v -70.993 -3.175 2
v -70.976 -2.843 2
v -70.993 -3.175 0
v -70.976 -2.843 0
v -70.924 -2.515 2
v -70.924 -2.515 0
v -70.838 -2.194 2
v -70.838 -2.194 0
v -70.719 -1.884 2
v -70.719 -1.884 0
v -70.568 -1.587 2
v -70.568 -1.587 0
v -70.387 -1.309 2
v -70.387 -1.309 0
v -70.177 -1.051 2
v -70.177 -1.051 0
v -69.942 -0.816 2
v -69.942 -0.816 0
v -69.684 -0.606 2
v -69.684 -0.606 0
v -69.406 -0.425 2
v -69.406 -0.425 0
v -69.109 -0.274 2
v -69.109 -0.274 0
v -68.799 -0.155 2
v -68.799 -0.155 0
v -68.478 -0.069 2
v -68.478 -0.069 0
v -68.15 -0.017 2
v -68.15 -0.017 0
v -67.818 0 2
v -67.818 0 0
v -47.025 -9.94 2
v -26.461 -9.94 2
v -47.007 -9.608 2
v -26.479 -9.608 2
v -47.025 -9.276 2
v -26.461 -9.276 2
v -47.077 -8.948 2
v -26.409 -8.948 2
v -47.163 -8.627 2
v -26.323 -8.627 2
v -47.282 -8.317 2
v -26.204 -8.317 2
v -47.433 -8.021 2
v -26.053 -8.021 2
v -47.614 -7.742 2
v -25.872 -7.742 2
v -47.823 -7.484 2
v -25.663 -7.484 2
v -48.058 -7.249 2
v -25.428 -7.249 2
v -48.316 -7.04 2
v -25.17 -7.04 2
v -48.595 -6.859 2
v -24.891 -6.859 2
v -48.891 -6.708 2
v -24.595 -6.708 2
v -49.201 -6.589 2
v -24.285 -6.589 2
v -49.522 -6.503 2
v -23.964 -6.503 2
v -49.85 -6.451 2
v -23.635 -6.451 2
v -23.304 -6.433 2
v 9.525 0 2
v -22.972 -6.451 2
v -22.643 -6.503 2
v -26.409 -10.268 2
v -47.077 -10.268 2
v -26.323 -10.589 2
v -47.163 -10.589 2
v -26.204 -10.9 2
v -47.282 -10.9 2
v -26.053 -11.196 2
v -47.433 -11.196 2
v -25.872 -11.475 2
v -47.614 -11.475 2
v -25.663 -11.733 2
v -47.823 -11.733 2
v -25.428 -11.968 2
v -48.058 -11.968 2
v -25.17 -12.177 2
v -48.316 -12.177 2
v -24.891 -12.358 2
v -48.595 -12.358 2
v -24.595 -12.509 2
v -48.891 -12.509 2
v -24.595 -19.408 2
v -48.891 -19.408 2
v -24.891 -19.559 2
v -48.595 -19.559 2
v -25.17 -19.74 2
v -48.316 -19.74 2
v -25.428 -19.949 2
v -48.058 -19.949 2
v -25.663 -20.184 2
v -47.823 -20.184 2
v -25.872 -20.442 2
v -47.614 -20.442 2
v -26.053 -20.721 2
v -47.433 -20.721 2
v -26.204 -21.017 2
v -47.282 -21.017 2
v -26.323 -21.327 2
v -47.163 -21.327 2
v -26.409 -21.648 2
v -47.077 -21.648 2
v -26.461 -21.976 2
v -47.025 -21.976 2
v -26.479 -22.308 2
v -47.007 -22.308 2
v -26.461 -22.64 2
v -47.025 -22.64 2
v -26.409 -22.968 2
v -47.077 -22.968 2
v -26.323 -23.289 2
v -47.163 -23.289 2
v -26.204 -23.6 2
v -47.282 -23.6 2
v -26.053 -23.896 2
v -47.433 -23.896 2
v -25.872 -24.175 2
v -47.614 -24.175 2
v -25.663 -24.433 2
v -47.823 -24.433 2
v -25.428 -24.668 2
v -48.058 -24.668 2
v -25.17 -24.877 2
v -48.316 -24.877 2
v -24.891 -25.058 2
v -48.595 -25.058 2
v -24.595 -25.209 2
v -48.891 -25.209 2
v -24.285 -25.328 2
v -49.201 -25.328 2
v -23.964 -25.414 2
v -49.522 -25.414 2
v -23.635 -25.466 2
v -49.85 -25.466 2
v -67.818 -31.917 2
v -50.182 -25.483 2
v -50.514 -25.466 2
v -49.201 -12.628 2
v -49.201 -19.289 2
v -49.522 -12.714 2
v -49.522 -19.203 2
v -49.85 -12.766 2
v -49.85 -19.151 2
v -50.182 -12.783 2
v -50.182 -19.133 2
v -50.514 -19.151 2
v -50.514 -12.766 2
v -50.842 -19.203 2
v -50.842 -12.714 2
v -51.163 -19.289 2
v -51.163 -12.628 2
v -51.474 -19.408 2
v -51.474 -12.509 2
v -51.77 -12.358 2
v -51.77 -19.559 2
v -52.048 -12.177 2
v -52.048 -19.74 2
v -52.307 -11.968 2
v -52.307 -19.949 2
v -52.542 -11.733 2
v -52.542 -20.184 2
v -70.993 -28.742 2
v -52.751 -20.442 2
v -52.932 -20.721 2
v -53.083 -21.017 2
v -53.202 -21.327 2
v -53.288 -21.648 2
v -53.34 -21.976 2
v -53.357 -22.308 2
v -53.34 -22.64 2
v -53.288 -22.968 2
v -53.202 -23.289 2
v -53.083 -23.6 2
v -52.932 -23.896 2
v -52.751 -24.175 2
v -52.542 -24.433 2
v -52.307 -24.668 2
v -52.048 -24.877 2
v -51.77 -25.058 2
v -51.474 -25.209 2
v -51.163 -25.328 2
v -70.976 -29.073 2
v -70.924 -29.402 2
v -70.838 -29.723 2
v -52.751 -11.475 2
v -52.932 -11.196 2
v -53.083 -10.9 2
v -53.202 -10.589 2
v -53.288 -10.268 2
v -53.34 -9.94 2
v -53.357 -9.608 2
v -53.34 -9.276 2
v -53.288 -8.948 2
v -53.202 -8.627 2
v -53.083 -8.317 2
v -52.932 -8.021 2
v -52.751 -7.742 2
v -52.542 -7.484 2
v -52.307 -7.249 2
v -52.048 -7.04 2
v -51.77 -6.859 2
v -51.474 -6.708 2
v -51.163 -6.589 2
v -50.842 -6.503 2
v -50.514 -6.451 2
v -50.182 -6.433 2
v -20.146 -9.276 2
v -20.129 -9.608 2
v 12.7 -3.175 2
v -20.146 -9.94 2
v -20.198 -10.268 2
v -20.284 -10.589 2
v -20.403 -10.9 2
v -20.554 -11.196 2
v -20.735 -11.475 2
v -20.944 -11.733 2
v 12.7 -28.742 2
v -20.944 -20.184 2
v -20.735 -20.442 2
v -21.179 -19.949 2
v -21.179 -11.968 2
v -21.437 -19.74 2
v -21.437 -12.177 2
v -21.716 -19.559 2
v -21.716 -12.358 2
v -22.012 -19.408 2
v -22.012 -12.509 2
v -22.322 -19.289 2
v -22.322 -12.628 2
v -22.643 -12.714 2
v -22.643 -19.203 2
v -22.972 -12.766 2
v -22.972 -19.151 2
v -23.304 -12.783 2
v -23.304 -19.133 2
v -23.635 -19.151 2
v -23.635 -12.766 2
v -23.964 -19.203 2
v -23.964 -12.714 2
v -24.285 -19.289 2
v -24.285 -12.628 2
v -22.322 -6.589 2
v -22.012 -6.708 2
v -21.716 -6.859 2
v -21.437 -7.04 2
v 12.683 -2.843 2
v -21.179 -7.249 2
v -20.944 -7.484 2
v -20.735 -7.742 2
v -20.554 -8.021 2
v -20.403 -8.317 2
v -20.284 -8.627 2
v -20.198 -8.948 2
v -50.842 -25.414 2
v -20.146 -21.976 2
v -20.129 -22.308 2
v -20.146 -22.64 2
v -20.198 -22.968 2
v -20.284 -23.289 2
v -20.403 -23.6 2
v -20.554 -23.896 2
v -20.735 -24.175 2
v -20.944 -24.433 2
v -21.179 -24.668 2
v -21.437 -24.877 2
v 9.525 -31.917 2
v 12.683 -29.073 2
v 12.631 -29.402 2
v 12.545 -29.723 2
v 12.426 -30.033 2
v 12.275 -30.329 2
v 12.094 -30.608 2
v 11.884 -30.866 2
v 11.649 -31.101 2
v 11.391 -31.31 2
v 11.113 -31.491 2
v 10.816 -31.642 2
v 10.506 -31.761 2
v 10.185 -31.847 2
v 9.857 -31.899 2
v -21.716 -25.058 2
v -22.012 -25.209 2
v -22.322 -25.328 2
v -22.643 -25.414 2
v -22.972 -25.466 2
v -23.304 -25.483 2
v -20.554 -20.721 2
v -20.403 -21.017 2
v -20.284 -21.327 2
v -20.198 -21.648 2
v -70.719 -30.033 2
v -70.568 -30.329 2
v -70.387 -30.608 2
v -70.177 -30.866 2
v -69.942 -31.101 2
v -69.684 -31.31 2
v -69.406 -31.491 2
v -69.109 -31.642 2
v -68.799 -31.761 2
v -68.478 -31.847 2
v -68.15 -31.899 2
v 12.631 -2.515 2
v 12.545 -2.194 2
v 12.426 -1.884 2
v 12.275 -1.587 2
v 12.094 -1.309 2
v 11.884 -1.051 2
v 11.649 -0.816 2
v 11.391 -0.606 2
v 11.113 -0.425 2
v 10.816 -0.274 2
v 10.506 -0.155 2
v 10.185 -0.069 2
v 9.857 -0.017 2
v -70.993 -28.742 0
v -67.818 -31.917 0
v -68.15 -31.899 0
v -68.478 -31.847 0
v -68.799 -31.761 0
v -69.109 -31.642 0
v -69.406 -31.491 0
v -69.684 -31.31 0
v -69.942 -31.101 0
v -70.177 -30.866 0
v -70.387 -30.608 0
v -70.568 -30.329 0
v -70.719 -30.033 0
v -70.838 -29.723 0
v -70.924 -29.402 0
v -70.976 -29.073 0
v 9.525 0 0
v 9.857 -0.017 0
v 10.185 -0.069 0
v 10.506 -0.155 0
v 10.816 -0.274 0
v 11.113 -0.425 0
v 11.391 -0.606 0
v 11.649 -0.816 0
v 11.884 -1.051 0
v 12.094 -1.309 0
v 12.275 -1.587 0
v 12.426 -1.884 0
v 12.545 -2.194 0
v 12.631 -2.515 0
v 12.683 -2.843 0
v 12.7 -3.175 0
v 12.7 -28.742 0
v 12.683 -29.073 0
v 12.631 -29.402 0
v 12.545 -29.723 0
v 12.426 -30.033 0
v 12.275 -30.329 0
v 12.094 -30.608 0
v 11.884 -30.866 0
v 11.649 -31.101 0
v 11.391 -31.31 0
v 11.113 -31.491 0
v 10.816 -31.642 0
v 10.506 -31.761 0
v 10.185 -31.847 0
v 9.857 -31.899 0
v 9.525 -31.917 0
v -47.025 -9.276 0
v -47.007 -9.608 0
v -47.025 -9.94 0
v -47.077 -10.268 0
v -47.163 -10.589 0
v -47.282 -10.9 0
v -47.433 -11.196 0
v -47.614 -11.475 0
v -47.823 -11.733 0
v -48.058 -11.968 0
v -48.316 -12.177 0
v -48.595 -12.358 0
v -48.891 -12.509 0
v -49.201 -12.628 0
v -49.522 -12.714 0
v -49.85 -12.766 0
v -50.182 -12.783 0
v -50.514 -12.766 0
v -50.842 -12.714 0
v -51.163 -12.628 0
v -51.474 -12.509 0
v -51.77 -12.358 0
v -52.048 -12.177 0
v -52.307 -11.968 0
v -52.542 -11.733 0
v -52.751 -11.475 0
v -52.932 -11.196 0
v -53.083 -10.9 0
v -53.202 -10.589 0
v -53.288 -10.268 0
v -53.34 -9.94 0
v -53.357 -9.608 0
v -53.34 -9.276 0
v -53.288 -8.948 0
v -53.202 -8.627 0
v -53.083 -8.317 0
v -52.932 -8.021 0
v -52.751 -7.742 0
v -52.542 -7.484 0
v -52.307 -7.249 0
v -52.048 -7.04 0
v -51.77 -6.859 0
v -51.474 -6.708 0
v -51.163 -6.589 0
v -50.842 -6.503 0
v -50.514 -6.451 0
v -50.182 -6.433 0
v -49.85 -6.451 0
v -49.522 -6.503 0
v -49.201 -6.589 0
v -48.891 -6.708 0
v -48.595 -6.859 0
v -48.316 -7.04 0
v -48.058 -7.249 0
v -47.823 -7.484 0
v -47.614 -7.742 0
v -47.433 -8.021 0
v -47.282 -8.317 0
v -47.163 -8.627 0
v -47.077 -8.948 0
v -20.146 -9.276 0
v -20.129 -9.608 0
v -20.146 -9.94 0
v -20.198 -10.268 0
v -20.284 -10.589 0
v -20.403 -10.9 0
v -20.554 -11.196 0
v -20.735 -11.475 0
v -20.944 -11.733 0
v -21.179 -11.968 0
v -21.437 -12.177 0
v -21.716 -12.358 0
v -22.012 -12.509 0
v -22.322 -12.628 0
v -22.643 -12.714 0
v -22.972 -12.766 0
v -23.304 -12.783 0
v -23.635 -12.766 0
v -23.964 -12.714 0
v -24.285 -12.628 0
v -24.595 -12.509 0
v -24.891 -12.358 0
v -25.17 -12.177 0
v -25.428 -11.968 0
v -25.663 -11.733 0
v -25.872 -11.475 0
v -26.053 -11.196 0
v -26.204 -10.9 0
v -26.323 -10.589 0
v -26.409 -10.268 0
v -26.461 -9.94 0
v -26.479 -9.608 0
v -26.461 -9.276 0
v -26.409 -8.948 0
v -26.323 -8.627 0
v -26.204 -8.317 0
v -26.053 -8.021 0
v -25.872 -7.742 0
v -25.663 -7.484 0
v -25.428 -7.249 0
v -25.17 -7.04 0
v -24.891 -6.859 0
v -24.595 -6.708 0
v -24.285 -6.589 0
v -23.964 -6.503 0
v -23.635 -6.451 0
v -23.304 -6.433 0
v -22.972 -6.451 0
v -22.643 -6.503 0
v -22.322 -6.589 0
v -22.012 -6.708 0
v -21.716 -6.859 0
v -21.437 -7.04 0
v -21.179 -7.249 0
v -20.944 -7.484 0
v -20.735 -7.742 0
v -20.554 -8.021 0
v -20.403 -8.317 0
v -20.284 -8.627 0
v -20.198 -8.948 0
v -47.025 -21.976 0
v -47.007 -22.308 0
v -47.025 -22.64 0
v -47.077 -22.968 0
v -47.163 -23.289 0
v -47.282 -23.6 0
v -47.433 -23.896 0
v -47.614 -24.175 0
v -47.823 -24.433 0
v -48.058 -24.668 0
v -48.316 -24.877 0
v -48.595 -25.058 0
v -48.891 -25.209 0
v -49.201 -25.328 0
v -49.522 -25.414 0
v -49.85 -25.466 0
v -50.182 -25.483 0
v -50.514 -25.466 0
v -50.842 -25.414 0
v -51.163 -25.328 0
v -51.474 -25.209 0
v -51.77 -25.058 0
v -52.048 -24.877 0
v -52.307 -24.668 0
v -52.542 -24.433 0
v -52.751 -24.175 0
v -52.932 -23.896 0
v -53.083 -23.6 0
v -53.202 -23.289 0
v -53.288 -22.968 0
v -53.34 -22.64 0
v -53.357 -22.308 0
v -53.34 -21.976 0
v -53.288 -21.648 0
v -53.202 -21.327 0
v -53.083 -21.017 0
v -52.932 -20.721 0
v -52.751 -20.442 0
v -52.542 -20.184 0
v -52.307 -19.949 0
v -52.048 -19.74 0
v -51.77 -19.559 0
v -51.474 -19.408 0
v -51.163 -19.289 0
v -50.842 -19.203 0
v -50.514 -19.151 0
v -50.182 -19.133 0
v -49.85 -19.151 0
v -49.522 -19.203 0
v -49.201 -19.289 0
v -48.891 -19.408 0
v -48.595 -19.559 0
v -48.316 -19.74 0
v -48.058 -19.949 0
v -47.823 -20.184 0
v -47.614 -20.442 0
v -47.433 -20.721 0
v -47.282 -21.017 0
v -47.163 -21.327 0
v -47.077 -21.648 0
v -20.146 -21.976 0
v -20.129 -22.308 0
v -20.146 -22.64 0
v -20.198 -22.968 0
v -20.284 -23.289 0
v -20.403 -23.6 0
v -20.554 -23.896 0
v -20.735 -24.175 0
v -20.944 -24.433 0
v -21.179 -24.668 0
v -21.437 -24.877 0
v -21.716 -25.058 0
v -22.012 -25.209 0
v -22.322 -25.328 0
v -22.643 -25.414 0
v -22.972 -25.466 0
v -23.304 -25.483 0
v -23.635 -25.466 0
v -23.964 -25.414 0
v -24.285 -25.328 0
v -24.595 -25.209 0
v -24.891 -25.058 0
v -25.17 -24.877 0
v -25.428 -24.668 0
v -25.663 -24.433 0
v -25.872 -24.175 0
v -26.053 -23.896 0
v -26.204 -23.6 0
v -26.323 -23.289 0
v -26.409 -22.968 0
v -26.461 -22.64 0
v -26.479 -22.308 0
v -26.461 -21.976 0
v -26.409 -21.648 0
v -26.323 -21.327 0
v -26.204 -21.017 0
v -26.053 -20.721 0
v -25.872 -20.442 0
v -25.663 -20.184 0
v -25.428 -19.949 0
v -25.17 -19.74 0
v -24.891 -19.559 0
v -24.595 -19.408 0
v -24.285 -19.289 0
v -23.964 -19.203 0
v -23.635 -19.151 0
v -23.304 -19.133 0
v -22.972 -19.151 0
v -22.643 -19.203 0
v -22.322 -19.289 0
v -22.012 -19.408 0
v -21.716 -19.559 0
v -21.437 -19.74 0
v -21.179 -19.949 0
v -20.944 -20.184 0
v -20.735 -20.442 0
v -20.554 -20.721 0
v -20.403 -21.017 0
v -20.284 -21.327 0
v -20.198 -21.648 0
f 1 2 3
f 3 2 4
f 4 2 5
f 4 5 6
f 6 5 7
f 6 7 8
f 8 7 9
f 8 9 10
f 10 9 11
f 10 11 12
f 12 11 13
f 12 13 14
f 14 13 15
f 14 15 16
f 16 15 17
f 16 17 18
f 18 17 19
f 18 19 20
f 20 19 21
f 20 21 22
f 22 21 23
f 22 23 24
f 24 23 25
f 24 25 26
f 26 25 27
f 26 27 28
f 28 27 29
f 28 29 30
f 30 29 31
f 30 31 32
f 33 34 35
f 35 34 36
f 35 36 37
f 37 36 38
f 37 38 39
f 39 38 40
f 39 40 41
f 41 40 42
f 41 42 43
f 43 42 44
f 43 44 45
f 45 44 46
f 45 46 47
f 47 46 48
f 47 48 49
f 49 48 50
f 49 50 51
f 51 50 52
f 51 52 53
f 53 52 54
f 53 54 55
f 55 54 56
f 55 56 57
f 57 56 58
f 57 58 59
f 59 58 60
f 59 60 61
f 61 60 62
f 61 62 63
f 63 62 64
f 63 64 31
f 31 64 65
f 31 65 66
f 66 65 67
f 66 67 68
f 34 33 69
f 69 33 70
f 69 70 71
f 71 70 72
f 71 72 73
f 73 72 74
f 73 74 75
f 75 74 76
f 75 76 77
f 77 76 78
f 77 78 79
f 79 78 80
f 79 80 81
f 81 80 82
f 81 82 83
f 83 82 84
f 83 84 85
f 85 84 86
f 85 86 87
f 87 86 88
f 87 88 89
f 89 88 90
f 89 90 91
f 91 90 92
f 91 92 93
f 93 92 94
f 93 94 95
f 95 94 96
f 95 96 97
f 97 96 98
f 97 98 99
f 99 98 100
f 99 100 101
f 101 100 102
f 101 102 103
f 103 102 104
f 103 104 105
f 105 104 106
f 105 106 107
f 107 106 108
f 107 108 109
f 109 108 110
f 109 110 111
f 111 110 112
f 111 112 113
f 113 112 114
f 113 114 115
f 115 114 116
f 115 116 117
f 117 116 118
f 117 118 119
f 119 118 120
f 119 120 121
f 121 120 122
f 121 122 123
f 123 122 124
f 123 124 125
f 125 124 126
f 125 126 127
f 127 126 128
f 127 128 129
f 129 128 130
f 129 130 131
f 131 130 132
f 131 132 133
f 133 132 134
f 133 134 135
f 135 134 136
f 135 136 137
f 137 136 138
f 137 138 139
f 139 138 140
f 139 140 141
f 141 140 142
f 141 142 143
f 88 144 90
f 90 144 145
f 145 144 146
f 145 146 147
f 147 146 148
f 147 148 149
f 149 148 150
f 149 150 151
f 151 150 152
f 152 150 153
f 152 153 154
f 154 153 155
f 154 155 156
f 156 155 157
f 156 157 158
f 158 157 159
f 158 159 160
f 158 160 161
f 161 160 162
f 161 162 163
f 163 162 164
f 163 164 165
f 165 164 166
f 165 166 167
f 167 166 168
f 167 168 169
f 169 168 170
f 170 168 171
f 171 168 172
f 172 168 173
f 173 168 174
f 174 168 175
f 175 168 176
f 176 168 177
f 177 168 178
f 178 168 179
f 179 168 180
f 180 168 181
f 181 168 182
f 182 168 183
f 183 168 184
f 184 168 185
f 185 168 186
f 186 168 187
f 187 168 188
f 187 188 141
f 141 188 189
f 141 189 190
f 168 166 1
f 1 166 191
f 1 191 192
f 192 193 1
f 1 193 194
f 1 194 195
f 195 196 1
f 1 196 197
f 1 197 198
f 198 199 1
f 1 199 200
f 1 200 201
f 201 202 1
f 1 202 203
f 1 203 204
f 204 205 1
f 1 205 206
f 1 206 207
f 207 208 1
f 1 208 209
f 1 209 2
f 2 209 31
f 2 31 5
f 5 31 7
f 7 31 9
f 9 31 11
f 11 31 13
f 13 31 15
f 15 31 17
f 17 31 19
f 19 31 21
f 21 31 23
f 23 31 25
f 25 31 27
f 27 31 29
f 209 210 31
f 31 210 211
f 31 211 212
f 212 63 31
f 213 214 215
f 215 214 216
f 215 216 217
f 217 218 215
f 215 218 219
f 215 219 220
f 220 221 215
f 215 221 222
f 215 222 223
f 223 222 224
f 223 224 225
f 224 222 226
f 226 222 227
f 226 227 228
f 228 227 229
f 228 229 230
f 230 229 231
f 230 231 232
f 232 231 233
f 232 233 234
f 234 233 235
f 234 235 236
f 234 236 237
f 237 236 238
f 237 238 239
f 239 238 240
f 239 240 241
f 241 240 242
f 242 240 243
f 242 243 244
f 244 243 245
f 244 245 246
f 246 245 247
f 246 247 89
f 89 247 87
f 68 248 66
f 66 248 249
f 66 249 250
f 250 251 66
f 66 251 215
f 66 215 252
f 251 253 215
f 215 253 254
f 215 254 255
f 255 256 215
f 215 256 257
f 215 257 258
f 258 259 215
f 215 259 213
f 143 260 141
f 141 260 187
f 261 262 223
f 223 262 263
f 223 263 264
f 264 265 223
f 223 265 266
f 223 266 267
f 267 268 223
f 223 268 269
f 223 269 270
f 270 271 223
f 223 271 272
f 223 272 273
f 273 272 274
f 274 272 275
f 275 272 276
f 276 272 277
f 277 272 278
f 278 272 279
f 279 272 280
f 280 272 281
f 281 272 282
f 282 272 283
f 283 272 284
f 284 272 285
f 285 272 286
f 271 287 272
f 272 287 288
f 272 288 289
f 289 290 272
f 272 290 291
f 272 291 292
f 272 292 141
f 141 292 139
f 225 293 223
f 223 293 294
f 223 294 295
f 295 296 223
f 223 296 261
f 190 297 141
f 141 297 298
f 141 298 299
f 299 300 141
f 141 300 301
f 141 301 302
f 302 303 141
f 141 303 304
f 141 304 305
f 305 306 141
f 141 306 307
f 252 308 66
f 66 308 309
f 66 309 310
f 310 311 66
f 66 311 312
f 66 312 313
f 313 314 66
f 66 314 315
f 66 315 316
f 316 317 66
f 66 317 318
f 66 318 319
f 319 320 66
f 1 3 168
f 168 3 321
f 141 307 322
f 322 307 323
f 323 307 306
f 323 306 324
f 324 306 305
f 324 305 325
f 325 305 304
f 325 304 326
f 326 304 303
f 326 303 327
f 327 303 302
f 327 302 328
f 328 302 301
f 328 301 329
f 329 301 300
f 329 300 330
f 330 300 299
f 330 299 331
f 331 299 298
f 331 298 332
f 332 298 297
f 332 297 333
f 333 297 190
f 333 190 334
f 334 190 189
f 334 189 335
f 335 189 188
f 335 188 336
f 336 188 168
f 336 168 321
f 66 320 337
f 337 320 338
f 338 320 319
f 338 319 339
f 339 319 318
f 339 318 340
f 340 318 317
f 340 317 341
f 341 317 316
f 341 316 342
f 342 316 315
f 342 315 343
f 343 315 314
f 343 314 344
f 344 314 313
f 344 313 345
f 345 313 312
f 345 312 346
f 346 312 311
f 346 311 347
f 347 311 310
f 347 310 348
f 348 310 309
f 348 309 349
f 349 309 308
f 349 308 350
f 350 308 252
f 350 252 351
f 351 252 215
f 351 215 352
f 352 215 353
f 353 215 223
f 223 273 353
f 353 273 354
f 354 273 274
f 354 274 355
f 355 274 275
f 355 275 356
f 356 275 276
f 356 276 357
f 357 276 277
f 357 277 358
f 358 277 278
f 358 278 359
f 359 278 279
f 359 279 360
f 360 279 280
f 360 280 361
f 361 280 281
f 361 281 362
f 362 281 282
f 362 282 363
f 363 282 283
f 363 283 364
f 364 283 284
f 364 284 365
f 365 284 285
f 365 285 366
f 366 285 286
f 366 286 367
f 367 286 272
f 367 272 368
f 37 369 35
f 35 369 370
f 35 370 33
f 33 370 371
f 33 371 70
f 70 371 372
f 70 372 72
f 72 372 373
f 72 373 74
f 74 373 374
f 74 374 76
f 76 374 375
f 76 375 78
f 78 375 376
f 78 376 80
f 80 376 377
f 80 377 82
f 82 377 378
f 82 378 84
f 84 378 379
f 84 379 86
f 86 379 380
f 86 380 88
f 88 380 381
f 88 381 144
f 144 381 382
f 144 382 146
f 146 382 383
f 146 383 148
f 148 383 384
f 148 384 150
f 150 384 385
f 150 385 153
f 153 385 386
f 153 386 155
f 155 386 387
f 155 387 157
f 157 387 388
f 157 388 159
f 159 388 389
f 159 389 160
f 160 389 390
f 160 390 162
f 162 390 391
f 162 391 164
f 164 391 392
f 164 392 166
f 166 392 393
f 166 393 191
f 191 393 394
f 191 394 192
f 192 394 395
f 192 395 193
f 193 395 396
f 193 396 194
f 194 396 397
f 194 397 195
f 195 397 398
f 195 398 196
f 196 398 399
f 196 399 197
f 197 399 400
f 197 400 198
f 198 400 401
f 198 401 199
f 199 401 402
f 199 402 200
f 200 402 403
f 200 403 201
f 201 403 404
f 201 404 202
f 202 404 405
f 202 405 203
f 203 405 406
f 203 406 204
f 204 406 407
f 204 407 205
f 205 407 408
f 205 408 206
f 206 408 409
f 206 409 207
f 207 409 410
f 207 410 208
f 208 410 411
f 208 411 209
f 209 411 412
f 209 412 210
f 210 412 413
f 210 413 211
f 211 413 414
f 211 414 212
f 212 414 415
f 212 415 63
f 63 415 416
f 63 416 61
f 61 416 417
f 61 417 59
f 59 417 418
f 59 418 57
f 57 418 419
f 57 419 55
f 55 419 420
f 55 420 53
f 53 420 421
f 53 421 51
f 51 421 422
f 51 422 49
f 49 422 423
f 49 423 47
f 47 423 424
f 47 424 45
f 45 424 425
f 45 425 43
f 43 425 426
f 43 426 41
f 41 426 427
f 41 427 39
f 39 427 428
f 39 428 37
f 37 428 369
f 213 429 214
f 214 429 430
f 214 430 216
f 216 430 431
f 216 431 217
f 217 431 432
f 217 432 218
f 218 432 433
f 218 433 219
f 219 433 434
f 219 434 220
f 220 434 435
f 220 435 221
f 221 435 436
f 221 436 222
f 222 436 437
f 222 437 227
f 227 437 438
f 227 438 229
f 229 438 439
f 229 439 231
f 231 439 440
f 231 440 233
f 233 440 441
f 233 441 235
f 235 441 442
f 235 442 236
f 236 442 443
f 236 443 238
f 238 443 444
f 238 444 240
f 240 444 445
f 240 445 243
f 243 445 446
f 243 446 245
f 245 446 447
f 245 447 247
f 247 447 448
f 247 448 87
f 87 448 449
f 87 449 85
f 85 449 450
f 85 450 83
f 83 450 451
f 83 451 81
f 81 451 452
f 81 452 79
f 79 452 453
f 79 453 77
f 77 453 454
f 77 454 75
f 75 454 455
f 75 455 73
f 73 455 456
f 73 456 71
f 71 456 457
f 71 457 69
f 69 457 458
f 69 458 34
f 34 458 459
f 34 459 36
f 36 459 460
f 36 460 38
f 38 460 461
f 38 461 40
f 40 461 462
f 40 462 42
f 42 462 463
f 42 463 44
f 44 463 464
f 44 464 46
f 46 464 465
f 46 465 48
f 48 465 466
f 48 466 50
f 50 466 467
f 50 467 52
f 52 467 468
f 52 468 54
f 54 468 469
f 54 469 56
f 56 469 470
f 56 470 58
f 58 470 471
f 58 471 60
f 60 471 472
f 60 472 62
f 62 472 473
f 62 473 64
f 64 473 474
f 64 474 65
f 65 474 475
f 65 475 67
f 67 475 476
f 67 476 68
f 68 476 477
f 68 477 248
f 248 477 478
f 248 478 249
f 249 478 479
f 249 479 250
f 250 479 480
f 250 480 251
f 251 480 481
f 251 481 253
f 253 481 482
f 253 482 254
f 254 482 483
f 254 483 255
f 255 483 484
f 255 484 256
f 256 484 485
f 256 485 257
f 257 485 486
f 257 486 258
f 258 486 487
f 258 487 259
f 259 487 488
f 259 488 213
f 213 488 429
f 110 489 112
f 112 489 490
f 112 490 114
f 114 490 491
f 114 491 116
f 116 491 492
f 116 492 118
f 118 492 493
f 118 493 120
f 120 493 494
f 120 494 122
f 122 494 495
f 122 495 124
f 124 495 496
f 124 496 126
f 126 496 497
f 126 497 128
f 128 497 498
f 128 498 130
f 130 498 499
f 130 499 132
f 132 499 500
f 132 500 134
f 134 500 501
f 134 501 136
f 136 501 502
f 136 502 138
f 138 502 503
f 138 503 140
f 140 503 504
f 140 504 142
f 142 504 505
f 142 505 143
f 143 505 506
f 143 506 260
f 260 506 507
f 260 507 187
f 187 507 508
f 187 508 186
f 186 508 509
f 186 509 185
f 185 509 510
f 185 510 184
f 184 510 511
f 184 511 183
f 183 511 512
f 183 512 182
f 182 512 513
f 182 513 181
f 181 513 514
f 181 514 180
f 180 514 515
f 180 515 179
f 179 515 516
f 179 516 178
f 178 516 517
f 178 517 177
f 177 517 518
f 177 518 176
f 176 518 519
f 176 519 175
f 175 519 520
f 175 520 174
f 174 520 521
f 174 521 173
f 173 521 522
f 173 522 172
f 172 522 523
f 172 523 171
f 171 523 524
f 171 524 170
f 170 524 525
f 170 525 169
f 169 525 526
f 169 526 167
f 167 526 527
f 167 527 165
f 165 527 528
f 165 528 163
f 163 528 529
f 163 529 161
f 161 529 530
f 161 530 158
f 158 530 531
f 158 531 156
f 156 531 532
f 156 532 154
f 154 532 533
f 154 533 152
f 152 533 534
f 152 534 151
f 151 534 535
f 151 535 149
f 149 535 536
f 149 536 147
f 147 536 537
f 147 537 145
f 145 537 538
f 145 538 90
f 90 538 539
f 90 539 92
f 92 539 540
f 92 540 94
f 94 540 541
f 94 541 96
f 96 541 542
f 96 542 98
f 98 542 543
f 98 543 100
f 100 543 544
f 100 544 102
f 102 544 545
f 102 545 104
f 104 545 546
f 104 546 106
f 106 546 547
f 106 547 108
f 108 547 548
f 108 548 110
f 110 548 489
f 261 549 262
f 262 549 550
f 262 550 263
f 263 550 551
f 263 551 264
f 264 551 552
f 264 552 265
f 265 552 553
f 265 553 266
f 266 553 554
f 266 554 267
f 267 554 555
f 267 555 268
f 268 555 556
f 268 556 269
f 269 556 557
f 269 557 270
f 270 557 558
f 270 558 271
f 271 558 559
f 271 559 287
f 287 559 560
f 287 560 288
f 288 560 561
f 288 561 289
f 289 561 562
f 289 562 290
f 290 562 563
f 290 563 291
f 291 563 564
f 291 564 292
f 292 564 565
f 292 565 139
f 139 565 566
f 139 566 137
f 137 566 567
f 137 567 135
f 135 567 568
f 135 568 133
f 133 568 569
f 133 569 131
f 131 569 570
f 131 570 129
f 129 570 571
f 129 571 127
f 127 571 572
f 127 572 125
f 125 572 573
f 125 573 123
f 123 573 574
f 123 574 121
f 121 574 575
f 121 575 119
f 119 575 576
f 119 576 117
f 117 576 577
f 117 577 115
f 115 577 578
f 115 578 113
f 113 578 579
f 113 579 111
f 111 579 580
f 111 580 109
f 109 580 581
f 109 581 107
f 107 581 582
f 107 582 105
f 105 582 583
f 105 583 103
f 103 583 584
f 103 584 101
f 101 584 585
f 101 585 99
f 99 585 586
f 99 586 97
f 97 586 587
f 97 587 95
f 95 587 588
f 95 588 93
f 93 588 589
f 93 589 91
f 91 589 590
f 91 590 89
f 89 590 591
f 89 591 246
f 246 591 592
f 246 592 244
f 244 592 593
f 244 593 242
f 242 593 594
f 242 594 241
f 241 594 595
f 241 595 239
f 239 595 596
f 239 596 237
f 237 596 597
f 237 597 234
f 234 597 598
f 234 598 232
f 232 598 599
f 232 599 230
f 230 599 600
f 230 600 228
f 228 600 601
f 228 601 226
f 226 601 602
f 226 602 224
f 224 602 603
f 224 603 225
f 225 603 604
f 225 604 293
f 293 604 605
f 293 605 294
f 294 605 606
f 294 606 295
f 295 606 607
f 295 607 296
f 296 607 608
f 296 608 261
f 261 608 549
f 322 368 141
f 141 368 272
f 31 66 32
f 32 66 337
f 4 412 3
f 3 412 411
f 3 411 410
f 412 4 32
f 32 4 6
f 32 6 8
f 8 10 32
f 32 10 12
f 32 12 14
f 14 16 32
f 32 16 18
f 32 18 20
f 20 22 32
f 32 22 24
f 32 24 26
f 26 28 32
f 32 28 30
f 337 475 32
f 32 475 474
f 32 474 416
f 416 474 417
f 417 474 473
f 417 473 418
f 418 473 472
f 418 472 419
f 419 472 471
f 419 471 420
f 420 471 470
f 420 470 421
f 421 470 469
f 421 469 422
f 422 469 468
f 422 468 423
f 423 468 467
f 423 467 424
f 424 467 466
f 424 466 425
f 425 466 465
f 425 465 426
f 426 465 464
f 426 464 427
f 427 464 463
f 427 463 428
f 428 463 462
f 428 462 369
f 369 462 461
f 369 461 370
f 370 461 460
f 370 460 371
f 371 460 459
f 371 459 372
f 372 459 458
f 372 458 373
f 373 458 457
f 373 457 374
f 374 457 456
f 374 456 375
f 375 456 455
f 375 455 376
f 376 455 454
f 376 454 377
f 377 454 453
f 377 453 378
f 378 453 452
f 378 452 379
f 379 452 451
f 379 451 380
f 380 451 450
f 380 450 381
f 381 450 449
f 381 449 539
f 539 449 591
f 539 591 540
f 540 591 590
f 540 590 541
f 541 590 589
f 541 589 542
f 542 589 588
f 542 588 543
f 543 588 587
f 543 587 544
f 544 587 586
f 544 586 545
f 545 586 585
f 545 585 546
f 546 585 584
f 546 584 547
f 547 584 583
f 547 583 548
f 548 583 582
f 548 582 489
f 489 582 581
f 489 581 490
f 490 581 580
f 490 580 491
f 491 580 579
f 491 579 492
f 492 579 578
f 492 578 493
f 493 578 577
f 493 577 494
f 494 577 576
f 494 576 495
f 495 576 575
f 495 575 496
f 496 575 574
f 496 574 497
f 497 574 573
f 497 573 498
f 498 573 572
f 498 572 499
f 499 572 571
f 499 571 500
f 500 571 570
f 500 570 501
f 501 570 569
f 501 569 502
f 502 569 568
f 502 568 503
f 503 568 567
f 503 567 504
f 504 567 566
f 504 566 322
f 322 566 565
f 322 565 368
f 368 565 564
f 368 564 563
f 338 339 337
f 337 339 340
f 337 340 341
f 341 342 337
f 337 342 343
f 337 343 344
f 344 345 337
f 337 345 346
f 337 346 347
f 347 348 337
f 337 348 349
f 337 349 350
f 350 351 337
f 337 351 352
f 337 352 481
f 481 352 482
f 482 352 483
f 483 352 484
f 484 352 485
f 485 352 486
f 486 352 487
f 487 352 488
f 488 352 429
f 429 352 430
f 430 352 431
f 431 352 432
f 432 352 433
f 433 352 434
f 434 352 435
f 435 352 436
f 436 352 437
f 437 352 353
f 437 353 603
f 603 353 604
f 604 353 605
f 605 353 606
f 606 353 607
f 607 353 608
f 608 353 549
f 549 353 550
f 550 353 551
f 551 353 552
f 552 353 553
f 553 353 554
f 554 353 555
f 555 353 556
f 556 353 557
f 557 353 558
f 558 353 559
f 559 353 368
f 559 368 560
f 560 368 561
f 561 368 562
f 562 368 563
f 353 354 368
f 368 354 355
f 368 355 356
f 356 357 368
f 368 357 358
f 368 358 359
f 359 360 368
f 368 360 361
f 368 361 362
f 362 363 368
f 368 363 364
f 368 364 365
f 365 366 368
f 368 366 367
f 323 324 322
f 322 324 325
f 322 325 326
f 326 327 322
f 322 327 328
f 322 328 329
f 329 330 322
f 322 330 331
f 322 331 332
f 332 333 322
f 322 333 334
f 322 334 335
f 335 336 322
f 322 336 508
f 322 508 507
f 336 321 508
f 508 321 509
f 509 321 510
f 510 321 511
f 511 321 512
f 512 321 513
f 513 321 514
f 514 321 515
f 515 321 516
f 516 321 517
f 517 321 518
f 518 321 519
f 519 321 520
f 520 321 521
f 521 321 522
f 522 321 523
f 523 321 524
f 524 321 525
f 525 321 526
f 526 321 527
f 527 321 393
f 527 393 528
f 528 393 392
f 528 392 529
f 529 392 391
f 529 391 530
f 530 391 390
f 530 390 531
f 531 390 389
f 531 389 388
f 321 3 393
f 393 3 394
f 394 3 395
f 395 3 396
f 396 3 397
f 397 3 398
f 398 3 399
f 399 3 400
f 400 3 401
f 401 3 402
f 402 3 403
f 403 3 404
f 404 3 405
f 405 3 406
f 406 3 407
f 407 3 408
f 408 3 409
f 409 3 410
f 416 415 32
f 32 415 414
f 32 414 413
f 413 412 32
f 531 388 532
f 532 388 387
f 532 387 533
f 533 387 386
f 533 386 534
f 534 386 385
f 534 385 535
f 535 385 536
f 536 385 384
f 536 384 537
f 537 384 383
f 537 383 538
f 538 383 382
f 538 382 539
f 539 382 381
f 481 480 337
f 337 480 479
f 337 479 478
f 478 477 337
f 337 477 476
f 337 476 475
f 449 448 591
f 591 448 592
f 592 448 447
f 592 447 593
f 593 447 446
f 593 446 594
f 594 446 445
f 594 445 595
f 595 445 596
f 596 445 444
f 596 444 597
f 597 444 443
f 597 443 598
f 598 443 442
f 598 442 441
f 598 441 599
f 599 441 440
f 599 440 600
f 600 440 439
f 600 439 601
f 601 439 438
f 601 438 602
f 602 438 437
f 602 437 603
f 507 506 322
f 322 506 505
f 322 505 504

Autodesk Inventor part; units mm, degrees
ref_plane "YZ Plane" through (0, 0, 0) normal (1, 0, 0) x (0, 1, 0)
ref_plane "XZ Plane" through (0, 0, 0) normal (0, 1, 0) x (-1, 0, 0)
ref_plane "XY Plane" through (0, 0, 0) normal (0, 0, 1) x (1, 0, 0)
sketch "Base" plane through (0, 0, 0) normal (0, 0, 1) x (1, 0, 0)
  line L0 (0, 0) -> (12.7, 0) construction
  line L1 (12.7, -15.9583) -> (-70.993, -15.9583) construction
  line L2 (12.7, 0) -> (12.7, -15.9583) construction
  line L3 (12.7, -31.9166) -> (12.7, -15.9583) construction
  line L4 (0, -31.9166) -> (12.7, -31.9166) construction
  circle A0 centre (-23.3035, -22.3083) radius 3.175
  circle A1 centre (-50.1821, -22.3083) radius 3.175
  circle A2 centre (-50.1821, -22.3083) radius 3.175
  circle A3 centre (-23.3035, -9.6083) radius 3.175
  circle A4 centre (-50.1821, -9.6083) radius 3.175
  line L5 (-50.1821, -9.6083) -> (-23.3035, -9.6083) construction
  line L6 (-50.1821, -22.3083) -> (-23.3035, -22.3083) construction
  line L7 (-50.1821, -9.6083) -> (-50.1821, -22.3083) construction
  line L8 (-23.3035, -9.6083) -> (-23.3035, -22.3083) construction
  line L9 (0, 0) -> (-70.993, 0) construction
  line L10 (0, -31.9166) -> (-70.993, -31.9166) construction
  line L11 (-70.993, -31.9166) -> (-70.993, 0) construction
  line L12 (-70.993, 0) -> (12.7, 0)
  line L13 (12.7, 0) -> (12.7, -31.9166)
  line L14 (12.7, -31.9166) -> (-70.993, -31.9166)
  line L15 (-70.993, -31.9166) -> (-70.993, 0)
  dimension "d0" = 6.35
  dimension "d1" = 6.35
  dimension "d2" = 180
  dimension "d3" = 90
  dimension "d4" = 36.0035
  dimension "d5" = 62.8821
  dimension "d6" = 83.693
  dimension "d7" = 15.9583
  dimension "d8" = 6.35
  dimension "d9" = 6.35
  dimension "d10" = 12.7
  dimension "d11" = 12.7
  dimension "d12" = 15.9583
  dimension "d13" = 0
  dimension "d14" = 12.7
  dimension "d15" = 12.7
  dimension "d16" = 62.8821
  dimension "d17" = 6.35
extrude "Plate1" add sketch "Base" along normal blind 2
fillet "Corner Round1" radius 3.175 4 edges at (12.7, -31.9166, 1) (12.7, 0, 1) (-70.993, -31.9166, 1) (-70.993, 0, 1)
equation "\"d18\" = Thickness"
equation "\"BendRadius\" = Thickness"
equation "\"BendReliefWidth\" = Thickness"
equation "\"BendReliefDepth\" = 0.5 * Thickness"
equation "\"CornerReliefSize\" = 4 * Thickness"
equation "\"MinimumRemnant\" = 2 * Thickness"
equation "\"TransitionRadius\" = BendRadius"
equation "\"JacobiRadiusSize\" = BendRadius"
equation "\"GapSize\" = Thickness"
equation "\"Thickness\" = 2"
properties part number "StockMountPlate"
